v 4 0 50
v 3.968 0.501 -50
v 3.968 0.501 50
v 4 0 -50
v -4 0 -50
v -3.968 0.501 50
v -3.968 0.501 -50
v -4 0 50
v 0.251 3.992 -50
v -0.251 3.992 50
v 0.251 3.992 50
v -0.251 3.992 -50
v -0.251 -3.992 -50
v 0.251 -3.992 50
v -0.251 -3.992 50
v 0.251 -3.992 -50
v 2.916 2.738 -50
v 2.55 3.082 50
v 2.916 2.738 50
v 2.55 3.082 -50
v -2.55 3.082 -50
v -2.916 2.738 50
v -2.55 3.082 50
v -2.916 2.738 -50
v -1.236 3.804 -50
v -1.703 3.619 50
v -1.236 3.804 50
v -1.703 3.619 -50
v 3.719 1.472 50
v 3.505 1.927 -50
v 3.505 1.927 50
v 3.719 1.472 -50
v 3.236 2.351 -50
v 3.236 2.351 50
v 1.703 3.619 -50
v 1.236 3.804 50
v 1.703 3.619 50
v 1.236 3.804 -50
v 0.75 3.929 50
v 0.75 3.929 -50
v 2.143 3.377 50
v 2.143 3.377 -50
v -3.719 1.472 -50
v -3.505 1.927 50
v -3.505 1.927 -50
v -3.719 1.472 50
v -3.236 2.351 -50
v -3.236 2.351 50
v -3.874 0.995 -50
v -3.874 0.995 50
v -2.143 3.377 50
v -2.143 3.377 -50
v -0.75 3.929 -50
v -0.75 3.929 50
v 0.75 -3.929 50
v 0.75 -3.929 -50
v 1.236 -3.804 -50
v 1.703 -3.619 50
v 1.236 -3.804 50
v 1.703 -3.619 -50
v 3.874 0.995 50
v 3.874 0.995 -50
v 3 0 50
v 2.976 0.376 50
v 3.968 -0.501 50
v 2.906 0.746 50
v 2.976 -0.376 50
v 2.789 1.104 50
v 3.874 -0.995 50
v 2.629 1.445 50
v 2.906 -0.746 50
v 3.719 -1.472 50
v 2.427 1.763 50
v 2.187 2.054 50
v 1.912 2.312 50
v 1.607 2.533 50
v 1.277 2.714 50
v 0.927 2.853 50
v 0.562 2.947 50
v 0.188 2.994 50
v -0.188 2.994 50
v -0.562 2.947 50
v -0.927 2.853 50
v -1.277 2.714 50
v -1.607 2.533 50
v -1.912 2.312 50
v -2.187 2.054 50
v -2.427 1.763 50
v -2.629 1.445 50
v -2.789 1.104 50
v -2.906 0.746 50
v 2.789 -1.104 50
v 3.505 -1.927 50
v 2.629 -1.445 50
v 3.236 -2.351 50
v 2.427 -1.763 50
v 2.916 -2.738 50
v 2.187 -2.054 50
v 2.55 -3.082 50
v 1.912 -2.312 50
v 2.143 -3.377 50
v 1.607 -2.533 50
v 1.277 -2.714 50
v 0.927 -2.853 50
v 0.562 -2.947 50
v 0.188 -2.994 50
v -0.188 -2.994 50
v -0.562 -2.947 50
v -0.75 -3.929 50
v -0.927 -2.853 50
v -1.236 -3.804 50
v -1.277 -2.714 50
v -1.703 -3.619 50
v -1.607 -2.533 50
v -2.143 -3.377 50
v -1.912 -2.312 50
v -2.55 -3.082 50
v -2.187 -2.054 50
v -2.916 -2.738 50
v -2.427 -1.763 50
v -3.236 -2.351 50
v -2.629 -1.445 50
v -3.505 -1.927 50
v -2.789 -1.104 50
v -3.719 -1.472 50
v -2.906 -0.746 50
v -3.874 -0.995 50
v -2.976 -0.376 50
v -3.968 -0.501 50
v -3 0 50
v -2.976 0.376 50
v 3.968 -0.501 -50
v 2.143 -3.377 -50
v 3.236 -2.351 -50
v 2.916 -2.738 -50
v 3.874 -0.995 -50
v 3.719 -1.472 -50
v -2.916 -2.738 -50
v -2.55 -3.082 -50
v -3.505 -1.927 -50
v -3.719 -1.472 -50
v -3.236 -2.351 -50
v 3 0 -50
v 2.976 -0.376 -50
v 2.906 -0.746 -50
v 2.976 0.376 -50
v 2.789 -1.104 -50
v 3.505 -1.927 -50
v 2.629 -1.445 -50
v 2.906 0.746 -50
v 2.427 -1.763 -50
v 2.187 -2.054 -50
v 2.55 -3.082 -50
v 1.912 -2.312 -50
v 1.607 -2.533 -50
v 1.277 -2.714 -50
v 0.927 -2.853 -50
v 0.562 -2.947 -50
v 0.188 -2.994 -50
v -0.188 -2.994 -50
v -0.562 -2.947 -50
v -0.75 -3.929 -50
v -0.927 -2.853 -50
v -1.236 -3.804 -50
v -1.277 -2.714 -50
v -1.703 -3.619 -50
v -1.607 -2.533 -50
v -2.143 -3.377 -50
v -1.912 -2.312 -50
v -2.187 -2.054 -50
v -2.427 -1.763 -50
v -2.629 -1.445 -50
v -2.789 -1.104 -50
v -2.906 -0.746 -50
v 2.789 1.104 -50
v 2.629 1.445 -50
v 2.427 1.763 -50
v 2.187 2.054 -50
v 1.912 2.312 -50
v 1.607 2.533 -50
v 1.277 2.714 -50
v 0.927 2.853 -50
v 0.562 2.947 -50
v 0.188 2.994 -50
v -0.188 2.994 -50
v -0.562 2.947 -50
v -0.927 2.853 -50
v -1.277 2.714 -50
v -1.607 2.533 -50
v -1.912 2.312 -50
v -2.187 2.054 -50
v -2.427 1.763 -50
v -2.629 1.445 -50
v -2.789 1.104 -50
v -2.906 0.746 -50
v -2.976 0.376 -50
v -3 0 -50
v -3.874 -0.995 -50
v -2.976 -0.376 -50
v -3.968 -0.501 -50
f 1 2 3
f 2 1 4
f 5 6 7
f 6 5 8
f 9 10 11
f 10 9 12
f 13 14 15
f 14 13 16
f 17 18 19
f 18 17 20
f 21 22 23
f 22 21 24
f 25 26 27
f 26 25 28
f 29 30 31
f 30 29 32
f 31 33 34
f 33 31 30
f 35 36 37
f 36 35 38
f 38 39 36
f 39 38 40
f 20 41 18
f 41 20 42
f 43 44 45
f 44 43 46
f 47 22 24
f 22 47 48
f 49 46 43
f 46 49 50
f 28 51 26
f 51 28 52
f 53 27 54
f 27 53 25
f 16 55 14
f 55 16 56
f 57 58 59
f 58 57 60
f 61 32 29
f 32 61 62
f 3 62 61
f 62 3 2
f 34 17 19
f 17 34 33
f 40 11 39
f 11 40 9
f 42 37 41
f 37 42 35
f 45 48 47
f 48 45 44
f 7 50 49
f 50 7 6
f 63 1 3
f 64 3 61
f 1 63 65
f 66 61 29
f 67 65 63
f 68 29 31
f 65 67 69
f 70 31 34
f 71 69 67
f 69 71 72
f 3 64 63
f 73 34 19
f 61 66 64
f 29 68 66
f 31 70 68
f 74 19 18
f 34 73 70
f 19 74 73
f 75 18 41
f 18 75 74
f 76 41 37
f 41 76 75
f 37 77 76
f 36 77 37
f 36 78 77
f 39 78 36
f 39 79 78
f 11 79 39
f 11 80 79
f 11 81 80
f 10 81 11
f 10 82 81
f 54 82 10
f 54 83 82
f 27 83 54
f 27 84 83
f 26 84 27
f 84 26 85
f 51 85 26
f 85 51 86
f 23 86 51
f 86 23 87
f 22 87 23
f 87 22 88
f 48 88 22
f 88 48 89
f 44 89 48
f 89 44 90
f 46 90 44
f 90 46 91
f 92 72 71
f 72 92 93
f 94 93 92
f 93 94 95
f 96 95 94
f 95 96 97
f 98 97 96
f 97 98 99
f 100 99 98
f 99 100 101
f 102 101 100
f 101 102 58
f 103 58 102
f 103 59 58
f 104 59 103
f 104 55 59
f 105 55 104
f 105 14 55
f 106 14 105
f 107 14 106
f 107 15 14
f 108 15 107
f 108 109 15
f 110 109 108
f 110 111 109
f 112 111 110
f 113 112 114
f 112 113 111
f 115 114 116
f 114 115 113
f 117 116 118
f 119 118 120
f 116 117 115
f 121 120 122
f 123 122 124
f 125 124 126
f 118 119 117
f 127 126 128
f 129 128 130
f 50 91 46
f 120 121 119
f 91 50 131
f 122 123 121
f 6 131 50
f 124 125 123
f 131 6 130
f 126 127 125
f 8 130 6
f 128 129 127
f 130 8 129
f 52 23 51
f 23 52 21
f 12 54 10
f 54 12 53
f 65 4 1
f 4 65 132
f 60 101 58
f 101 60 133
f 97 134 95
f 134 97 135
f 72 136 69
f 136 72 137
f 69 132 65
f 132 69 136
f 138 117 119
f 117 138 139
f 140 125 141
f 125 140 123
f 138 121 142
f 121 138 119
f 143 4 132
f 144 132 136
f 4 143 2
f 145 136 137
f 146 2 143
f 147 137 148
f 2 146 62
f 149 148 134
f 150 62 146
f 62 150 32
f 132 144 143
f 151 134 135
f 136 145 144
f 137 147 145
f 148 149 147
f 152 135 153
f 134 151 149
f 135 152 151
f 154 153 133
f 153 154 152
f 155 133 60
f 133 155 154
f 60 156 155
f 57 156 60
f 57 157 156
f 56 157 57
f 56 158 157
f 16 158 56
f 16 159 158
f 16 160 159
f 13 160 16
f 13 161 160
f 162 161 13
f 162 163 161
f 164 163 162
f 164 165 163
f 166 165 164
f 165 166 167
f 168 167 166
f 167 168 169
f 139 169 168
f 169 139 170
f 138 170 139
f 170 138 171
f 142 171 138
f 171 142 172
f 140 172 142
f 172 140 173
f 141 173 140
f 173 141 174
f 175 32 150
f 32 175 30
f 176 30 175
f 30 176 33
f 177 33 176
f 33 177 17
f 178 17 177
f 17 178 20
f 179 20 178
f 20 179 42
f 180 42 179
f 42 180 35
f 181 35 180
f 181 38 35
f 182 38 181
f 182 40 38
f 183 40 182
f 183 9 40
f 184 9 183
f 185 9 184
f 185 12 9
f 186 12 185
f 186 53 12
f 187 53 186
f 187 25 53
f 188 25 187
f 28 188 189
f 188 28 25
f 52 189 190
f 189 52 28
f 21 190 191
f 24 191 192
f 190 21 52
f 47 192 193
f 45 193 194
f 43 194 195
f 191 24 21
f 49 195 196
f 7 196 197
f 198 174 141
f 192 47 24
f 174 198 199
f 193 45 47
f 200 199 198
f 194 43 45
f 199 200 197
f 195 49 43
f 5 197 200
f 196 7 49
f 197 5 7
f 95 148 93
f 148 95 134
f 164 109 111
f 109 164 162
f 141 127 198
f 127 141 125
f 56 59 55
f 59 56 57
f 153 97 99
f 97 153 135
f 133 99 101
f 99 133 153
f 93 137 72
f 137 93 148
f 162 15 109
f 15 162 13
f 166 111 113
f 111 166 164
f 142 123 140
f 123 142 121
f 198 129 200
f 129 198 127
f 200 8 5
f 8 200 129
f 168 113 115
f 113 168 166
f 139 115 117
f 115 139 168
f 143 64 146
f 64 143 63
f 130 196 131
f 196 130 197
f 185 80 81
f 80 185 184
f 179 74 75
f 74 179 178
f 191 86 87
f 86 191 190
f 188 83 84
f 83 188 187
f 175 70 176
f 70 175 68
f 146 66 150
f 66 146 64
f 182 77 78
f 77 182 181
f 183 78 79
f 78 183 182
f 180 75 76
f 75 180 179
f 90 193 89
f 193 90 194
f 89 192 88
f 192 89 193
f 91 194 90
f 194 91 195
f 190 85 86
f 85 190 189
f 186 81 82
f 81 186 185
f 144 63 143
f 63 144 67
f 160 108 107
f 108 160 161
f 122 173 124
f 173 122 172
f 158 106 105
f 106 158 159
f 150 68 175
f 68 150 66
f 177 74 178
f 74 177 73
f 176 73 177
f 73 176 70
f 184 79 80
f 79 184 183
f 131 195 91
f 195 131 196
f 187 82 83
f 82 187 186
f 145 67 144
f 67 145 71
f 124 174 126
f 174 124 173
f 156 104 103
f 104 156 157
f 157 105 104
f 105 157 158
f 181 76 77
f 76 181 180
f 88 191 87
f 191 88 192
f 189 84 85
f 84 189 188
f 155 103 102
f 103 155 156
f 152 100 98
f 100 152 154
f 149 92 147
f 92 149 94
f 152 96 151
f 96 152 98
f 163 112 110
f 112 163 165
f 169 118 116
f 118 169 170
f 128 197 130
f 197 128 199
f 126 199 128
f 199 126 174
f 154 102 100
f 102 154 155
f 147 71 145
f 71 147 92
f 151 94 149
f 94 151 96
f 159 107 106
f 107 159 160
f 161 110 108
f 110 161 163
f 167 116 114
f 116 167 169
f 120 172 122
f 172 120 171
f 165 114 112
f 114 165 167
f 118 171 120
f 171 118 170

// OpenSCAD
$fn = 50;


difference() {
	union() {
		translate(v = [0, 0, -50.0000000000]) {
			cylinder(h = 100, r = 4.0000000000);
		}
	}
	union() {
		translate(v = [0, 0, -100.0000000000]) {
			cylinder(h = 200, r = 3);
		}
	}
}
